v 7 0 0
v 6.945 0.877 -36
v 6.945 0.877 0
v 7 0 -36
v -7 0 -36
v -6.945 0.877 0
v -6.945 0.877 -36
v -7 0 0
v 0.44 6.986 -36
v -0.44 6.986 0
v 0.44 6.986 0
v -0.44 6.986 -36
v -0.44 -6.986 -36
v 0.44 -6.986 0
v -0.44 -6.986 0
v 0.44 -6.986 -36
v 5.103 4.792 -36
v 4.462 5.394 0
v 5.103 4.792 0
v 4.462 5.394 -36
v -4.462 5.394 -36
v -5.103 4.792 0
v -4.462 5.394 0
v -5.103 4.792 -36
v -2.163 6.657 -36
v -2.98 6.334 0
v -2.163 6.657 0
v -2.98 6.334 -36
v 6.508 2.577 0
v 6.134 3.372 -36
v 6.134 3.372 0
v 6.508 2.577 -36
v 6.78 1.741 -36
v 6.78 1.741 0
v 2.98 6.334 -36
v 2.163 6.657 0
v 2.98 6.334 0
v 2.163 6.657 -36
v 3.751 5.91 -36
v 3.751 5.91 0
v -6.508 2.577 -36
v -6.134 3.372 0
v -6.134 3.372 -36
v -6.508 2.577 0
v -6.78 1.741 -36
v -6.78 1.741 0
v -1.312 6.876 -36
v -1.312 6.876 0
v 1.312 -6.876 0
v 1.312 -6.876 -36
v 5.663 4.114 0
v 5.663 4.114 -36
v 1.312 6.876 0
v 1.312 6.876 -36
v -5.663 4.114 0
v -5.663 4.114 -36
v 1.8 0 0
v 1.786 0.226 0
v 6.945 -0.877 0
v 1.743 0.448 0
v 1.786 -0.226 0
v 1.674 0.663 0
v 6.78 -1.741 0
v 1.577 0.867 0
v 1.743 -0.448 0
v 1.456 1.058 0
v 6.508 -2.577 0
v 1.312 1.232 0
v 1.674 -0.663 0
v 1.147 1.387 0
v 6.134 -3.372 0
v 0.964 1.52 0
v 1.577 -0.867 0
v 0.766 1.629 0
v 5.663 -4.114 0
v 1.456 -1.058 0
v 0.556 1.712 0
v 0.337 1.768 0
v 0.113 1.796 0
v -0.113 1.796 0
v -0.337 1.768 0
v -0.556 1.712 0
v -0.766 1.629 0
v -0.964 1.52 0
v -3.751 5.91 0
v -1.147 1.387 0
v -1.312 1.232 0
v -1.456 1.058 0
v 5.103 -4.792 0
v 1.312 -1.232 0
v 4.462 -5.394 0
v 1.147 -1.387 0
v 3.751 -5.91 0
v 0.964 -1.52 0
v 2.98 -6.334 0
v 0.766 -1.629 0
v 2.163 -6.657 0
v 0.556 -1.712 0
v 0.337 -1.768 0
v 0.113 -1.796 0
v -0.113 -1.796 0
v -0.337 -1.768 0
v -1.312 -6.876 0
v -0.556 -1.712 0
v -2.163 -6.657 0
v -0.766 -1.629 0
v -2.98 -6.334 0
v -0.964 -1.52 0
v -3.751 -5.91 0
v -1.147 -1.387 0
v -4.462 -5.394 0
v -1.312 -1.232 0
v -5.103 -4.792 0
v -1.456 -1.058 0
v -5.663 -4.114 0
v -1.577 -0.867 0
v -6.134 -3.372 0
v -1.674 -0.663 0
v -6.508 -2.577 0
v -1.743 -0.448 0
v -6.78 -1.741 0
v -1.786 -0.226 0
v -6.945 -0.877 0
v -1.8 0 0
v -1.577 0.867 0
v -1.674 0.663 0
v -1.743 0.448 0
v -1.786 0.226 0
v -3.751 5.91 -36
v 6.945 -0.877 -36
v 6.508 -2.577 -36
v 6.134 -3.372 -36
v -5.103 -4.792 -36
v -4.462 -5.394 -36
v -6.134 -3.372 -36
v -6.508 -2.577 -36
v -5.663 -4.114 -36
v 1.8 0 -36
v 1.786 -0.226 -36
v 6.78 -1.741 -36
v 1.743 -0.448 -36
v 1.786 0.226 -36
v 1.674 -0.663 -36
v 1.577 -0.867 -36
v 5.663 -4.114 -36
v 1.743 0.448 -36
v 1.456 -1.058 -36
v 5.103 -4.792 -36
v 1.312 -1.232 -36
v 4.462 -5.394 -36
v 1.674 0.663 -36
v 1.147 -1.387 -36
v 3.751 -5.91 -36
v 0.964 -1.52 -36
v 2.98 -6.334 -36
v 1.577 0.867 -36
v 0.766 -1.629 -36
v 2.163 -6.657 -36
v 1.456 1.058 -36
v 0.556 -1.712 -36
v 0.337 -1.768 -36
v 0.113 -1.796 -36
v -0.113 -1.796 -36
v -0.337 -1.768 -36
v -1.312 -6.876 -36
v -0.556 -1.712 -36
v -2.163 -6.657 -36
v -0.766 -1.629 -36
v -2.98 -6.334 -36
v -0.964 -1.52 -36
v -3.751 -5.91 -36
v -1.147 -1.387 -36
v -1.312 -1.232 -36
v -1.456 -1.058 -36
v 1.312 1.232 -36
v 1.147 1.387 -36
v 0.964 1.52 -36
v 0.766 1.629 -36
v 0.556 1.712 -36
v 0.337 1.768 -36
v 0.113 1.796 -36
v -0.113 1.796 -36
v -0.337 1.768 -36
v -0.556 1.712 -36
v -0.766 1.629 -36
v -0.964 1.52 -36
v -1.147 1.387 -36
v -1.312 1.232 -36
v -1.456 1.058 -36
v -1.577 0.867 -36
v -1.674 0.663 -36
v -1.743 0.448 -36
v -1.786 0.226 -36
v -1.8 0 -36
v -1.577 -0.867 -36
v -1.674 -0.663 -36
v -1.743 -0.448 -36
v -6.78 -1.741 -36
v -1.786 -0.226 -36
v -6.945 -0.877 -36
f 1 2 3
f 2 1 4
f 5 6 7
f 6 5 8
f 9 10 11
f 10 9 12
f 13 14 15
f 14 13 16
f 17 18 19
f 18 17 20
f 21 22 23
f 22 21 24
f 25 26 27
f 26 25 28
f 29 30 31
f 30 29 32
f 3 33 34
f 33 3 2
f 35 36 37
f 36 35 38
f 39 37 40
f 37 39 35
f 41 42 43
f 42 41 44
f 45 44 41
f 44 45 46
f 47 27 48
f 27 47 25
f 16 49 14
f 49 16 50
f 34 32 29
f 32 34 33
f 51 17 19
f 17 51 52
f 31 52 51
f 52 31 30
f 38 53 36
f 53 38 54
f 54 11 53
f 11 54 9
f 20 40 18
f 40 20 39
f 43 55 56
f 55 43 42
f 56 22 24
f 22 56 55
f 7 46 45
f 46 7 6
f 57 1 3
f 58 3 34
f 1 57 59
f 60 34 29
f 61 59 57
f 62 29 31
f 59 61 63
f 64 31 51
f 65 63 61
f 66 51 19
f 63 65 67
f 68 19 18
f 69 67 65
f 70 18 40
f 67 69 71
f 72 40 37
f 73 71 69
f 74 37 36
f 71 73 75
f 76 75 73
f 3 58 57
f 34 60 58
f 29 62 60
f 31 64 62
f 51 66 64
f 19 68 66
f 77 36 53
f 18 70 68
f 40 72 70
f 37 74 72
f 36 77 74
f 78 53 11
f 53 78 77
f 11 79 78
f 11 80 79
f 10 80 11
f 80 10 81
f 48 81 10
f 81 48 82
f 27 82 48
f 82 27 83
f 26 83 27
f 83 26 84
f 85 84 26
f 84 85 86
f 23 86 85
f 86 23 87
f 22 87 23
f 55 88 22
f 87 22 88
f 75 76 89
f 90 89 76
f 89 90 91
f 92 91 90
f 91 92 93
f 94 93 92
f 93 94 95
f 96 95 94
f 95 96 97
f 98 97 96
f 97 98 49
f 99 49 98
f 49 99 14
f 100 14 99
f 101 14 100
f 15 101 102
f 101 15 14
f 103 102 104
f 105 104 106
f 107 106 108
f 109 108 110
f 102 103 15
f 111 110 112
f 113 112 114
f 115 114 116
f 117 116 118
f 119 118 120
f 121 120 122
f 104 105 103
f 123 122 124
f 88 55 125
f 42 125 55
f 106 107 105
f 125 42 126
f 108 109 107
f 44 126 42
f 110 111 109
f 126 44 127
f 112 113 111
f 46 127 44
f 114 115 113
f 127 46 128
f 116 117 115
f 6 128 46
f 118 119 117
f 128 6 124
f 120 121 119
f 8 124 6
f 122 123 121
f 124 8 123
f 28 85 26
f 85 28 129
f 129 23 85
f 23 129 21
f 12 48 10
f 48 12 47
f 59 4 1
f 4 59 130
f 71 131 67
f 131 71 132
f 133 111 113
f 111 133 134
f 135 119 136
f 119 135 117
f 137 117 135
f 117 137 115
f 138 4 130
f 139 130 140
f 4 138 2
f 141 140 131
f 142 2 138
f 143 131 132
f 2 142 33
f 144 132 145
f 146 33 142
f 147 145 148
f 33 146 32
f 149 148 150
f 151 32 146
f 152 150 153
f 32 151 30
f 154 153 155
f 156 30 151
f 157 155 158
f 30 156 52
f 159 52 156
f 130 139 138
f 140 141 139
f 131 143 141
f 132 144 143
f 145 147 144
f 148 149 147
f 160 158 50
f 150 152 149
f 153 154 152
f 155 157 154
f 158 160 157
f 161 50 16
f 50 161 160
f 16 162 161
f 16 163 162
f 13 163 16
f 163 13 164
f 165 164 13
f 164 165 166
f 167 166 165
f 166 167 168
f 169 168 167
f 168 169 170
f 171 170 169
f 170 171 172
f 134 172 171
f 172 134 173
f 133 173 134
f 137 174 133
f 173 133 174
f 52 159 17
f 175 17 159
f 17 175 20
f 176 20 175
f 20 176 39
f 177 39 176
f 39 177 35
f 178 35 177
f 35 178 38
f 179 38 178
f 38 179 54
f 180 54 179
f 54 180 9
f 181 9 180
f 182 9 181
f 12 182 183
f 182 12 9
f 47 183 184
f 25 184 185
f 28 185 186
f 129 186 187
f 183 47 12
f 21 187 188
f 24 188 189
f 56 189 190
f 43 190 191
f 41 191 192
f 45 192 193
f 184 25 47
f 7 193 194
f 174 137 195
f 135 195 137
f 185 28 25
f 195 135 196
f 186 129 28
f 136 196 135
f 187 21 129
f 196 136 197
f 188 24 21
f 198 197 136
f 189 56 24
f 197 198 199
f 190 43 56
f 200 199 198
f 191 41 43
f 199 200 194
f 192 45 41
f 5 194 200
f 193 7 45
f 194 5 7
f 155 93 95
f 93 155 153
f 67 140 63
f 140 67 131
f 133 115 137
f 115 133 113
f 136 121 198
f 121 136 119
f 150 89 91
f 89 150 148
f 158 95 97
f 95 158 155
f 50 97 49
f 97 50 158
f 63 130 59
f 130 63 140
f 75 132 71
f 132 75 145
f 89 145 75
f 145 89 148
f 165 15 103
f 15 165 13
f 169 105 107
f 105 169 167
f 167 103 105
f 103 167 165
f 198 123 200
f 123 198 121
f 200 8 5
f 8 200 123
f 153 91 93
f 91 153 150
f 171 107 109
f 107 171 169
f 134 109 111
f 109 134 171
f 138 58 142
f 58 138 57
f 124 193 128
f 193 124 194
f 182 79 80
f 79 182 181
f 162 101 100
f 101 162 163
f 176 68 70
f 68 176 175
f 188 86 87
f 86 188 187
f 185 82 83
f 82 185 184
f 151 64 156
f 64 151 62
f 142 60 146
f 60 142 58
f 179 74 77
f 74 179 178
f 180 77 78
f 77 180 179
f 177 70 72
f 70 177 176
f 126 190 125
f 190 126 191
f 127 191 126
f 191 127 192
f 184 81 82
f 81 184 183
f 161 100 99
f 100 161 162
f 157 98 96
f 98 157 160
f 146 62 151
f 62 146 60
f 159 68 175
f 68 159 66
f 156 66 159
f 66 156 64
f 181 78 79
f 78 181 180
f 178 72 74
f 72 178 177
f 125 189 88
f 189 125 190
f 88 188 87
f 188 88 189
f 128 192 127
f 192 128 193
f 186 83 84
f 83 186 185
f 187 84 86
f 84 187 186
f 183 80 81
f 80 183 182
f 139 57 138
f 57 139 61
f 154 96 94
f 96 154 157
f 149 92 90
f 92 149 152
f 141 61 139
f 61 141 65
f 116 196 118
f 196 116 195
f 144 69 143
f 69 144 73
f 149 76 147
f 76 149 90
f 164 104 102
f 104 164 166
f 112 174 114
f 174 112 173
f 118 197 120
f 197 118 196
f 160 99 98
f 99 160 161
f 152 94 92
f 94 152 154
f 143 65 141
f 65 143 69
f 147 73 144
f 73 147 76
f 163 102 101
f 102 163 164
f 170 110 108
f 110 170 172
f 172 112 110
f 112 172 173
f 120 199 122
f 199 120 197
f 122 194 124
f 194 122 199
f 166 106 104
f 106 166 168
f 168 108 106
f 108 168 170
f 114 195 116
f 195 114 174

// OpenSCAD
$fn = 50;


difference() {
	union() {
		translate(v = [0, 0, -36.0000000000]) {
			cylinder(h = 36, r = 7.0000000000);
		}
		cylinder(h = 0, r = 17.0000000000);
	}
	union() {
		#translate(v = [0, 0, -36]) {
			cylinder(h = 36, r = 1.8000000000);
		}
	}
}
